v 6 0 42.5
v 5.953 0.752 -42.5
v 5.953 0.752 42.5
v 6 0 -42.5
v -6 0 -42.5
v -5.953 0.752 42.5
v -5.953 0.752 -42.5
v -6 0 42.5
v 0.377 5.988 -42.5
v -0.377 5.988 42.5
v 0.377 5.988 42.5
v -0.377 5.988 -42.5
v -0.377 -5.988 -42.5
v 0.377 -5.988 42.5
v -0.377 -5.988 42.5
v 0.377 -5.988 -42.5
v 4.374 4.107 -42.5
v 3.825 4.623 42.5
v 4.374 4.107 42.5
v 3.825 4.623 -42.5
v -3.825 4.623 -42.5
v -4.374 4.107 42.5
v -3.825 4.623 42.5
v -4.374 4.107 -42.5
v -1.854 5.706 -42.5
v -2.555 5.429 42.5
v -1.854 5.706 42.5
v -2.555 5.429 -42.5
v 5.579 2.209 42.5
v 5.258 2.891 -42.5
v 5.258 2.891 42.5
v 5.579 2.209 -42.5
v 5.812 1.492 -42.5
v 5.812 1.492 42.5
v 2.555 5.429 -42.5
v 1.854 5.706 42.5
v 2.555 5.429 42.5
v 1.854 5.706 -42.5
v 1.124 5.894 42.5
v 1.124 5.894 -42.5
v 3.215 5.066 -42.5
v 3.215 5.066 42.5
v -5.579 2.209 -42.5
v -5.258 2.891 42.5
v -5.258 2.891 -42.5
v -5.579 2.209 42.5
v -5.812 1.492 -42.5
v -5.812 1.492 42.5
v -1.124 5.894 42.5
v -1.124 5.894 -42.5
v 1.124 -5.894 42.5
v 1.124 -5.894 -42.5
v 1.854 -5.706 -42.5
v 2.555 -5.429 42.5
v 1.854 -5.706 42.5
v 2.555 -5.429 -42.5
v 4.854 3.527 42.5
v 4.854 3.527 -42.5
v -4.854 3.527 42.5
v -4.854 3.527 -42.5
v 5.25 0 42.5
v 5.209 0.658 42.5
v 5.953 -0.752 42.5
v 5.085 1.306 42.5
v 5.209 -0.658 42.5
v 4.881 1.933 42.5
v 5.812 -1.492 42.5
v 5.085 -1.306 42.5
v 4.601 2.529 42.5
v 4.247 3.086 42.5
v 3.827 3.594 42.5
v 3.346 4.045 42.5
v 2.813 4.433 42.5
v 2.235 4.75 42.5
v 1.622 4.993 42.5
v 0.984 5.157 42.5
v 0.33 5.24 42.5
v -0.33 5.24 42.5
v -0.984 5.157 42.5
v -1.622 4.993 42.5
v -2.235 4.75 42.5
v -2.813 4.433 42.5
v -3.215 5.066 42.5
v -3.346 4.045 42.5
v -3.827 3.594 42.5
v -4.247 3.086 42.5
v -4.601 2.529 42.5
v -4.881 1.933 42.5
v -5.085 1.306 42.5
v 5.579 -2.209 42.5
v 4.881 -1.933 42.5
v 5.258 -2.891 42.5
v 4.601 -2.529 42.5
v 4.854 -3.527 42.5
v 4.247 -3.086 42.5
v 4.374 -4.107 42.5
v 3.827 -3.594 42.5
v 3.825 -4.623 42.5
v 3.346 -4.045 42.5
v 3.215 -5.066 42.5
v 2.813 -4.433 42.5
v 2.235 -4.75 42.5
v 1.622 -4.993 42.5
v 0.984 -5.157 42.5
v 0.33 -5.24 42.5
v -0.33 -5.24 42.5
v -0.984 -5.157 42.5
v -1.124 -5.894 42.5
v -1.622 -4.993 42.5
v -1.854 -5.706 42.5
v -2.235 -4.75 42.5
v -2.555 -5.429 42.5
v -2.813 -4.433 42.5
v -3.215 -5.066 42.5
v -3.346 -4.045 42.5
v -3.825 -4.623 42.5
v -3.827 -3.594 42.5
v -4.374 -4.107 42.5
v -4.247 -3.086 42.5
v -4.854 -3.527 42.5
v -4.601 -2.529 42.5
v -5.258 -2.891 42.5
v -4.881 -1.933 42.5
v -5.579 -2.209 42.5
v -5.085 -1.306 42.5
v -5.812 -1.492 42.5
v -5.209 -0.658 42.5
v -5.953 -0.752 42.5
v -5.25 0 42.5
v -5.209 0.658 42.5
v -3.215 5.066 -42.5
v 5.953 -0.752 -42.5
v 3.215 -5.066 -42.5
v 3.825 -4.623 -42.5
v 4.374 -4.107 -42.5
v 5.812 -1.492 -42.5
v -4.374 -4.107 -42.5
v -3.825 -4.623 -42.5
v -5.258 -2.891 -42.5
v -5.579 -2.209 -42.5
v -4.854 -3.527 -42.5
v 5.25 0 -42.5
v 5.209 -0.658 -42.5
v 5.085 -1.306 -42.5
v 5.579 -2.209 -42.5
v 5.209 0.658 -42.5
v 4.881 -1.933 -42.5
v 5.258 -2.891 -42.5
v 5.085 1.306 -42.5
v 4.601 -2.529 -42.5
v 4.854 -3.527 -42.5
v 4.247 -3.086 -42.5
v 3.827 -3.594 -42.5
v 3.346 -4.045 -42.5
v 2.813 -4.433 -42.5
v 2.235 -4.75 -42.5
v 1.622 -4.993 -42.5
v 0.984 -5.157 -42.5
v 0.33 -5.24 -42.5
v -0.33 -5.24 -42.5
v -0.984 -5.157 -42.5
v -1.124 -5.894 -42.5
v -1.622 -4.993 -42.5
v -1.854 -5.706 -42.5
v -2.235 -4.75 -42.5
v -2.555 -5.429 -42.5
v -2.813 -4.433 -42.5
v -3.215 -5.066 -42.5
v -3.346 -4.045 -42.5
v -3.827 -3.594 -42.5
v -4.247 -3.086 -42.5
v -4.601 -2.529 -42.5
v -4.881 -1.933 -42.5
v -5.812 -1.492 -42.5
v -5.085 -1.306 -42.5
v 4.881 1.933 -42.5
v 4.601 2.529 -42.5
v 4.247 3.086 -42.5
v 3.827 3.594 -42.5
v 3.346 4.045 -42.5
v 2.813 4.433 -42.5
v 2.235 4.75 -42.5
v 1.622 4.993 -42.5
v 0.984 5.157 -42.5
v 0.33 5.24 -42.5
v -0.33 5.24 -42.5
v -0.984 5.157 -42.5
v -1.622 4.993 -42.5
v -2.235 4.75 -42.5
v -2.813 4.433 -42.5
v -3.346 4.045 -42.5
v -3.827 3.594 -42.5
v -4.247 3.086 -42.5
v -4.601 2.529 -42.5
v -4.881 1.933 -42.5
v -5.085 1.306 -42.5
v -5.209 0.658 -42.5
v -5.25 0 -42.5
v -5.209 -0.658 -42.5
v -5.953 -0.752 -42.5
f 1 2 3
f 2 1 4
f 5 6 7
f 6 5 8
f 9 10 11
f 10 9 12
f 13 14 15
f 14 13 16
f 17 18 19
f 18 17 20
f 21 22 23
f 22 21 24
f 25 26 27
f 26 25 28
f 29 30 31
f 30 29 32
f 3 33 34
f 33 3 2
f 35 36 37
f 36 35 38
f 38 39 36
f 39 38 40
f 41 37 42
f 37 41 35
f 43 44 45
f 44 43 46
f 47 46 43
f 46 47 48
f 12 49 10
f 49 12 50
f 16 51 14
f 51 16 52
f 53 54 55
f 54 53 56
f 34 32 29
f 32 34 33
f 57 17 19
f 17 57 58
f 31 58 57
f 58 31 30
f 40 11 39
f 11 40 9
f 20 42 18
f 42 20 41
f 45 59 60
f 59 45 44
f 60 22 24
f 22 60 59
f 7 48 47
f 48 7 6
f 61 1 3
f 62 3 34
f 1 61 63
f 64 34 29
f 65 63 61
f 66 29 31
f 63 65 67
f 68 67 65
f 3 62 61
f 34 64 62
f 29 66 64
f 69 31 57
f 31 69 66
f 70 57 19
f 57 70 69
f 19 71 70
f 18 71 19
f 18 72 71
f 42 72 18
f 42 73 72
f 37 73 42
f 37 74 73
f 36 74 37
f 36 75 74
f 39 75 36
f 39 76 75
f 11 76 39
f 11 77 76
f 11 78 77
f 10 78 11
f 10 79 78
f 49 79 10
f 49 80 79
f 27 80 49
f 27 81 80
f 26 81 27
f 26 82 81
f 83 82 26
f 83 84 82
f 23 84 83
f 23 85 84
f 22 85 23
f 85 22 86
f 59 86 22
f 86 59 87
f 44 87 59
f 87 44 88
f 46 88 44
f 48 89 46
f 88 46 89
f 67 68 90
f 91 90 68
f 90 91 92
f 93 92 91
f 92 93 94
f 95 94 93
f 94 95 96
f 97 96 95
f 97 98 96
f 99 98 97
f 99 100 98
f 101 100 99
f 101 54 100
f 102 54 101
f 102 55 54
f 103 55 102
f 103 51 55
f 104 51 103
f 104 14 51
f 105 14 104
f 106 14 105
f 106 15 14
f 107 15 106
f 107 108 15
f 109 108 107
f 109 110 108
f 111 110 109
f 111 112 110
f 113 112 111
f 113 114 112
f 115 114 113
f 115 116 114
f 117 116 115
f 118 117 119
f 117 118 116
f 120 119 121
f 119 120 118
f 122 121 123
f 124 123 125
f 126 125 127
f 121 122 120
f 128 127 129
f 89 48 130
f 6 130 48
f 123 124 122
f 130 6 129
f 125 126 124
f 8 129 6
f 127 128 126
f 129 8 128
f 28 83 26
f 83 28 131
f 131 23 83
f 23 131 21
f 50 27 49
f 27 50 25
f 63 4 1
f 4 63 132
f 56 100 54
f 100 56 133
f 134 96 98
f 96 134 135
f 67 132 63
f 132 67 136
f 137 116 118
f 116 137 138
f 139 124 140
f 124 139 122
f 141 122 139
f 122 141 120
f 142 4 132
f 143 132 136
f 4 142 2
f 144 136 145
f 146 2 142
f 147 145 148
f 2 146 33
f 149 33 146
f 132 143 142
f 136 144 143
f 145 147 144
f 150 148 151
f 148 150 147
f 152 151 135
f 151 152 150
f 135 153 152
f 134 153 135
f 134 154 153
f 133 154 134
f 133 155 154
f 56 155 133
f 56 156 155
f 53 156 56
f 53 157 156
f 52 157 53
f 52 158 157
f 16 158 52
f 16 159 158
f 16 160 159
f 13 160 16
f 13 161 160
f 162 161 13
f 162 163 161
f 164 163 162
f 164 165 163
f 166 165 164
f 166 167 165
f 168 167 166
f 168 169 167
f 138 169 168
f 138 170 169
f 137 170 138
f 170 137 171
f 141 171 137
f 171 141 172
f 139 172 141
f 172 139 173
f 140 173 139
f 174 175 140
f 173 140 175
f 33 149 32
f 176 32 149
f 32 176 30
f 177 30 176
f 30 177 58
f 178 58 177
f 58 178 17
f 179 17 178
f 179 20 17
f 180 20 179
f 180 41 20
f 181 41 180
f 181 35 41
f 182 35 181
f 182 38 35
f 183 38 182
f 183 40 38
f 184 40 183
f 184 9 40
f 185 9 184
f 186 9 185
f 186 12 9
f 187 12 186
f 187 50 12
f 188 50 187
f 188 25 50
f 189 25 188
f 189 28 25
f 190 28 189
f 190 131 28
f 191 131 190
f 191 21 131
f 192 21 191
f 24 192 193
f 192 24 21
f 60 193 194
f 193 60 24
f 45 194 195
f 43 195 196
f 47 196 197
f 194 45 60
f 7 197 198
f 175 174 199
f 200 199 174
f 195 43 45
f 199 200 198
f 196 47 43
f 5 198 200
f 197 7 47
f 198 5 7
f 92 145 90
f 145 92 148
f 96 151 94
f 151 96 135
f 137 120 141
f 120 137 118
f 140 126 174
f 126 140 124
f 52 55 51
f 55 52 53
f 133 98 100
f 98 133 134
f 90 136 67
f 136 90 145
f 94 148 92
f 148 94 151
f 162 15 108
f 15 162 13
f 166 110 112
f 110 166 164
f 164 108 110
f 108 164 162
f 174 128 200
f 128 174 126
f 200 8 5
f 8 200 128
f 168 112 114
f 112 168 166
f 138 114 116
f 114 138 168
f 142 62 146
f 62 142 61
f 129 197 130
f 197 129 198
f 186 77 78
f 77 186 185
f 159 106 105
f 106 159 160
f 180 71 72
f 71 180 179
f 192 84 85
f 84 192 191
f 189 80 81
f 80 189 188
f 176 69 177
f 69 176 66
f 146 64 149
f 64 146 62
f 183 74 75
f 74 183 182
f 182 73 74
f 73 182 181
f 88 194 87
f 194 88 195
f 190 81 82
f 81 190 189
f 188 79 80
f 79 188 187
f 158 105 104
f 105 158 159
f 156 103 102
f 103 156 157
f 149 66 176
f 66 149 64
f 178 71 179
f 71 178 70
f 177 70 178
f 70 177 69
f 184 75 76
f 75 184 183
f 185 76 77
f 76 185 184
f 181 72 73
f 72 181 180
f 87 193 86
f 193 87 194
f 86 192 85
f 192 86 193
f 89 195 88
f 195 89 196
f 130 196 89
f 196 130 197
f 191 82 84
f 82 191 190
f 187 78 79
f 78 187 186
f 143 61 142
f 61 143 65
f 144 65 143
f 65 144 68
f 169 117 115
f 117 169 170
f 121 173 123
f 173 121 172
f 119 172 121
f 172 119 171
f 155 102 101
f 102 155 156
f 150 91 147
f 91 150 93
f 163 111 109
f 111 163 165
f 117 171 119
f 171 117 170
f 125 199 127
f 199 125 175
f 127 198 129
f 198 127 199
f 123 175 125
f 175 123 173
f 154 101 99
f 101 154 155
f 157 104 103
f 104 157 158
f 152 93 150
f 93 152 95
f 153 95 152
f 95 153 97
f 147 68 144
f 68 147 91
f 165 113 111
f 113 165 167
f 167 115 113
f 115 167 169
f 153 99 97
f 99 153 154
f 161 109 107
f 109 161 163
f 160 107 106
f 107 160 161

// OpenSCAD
$fn = 50;


difference() {
	union() {
		translate(v = [0, 0, -42.5000000000]) {
			cylinder(h = 85, r = 6.0000000000);
		}
	}
	union() {
		translate(v = [0, 0, -100.0000000000]) {
			cylinder(h = 200, r = 5.2500000000);
		}
	}
}
